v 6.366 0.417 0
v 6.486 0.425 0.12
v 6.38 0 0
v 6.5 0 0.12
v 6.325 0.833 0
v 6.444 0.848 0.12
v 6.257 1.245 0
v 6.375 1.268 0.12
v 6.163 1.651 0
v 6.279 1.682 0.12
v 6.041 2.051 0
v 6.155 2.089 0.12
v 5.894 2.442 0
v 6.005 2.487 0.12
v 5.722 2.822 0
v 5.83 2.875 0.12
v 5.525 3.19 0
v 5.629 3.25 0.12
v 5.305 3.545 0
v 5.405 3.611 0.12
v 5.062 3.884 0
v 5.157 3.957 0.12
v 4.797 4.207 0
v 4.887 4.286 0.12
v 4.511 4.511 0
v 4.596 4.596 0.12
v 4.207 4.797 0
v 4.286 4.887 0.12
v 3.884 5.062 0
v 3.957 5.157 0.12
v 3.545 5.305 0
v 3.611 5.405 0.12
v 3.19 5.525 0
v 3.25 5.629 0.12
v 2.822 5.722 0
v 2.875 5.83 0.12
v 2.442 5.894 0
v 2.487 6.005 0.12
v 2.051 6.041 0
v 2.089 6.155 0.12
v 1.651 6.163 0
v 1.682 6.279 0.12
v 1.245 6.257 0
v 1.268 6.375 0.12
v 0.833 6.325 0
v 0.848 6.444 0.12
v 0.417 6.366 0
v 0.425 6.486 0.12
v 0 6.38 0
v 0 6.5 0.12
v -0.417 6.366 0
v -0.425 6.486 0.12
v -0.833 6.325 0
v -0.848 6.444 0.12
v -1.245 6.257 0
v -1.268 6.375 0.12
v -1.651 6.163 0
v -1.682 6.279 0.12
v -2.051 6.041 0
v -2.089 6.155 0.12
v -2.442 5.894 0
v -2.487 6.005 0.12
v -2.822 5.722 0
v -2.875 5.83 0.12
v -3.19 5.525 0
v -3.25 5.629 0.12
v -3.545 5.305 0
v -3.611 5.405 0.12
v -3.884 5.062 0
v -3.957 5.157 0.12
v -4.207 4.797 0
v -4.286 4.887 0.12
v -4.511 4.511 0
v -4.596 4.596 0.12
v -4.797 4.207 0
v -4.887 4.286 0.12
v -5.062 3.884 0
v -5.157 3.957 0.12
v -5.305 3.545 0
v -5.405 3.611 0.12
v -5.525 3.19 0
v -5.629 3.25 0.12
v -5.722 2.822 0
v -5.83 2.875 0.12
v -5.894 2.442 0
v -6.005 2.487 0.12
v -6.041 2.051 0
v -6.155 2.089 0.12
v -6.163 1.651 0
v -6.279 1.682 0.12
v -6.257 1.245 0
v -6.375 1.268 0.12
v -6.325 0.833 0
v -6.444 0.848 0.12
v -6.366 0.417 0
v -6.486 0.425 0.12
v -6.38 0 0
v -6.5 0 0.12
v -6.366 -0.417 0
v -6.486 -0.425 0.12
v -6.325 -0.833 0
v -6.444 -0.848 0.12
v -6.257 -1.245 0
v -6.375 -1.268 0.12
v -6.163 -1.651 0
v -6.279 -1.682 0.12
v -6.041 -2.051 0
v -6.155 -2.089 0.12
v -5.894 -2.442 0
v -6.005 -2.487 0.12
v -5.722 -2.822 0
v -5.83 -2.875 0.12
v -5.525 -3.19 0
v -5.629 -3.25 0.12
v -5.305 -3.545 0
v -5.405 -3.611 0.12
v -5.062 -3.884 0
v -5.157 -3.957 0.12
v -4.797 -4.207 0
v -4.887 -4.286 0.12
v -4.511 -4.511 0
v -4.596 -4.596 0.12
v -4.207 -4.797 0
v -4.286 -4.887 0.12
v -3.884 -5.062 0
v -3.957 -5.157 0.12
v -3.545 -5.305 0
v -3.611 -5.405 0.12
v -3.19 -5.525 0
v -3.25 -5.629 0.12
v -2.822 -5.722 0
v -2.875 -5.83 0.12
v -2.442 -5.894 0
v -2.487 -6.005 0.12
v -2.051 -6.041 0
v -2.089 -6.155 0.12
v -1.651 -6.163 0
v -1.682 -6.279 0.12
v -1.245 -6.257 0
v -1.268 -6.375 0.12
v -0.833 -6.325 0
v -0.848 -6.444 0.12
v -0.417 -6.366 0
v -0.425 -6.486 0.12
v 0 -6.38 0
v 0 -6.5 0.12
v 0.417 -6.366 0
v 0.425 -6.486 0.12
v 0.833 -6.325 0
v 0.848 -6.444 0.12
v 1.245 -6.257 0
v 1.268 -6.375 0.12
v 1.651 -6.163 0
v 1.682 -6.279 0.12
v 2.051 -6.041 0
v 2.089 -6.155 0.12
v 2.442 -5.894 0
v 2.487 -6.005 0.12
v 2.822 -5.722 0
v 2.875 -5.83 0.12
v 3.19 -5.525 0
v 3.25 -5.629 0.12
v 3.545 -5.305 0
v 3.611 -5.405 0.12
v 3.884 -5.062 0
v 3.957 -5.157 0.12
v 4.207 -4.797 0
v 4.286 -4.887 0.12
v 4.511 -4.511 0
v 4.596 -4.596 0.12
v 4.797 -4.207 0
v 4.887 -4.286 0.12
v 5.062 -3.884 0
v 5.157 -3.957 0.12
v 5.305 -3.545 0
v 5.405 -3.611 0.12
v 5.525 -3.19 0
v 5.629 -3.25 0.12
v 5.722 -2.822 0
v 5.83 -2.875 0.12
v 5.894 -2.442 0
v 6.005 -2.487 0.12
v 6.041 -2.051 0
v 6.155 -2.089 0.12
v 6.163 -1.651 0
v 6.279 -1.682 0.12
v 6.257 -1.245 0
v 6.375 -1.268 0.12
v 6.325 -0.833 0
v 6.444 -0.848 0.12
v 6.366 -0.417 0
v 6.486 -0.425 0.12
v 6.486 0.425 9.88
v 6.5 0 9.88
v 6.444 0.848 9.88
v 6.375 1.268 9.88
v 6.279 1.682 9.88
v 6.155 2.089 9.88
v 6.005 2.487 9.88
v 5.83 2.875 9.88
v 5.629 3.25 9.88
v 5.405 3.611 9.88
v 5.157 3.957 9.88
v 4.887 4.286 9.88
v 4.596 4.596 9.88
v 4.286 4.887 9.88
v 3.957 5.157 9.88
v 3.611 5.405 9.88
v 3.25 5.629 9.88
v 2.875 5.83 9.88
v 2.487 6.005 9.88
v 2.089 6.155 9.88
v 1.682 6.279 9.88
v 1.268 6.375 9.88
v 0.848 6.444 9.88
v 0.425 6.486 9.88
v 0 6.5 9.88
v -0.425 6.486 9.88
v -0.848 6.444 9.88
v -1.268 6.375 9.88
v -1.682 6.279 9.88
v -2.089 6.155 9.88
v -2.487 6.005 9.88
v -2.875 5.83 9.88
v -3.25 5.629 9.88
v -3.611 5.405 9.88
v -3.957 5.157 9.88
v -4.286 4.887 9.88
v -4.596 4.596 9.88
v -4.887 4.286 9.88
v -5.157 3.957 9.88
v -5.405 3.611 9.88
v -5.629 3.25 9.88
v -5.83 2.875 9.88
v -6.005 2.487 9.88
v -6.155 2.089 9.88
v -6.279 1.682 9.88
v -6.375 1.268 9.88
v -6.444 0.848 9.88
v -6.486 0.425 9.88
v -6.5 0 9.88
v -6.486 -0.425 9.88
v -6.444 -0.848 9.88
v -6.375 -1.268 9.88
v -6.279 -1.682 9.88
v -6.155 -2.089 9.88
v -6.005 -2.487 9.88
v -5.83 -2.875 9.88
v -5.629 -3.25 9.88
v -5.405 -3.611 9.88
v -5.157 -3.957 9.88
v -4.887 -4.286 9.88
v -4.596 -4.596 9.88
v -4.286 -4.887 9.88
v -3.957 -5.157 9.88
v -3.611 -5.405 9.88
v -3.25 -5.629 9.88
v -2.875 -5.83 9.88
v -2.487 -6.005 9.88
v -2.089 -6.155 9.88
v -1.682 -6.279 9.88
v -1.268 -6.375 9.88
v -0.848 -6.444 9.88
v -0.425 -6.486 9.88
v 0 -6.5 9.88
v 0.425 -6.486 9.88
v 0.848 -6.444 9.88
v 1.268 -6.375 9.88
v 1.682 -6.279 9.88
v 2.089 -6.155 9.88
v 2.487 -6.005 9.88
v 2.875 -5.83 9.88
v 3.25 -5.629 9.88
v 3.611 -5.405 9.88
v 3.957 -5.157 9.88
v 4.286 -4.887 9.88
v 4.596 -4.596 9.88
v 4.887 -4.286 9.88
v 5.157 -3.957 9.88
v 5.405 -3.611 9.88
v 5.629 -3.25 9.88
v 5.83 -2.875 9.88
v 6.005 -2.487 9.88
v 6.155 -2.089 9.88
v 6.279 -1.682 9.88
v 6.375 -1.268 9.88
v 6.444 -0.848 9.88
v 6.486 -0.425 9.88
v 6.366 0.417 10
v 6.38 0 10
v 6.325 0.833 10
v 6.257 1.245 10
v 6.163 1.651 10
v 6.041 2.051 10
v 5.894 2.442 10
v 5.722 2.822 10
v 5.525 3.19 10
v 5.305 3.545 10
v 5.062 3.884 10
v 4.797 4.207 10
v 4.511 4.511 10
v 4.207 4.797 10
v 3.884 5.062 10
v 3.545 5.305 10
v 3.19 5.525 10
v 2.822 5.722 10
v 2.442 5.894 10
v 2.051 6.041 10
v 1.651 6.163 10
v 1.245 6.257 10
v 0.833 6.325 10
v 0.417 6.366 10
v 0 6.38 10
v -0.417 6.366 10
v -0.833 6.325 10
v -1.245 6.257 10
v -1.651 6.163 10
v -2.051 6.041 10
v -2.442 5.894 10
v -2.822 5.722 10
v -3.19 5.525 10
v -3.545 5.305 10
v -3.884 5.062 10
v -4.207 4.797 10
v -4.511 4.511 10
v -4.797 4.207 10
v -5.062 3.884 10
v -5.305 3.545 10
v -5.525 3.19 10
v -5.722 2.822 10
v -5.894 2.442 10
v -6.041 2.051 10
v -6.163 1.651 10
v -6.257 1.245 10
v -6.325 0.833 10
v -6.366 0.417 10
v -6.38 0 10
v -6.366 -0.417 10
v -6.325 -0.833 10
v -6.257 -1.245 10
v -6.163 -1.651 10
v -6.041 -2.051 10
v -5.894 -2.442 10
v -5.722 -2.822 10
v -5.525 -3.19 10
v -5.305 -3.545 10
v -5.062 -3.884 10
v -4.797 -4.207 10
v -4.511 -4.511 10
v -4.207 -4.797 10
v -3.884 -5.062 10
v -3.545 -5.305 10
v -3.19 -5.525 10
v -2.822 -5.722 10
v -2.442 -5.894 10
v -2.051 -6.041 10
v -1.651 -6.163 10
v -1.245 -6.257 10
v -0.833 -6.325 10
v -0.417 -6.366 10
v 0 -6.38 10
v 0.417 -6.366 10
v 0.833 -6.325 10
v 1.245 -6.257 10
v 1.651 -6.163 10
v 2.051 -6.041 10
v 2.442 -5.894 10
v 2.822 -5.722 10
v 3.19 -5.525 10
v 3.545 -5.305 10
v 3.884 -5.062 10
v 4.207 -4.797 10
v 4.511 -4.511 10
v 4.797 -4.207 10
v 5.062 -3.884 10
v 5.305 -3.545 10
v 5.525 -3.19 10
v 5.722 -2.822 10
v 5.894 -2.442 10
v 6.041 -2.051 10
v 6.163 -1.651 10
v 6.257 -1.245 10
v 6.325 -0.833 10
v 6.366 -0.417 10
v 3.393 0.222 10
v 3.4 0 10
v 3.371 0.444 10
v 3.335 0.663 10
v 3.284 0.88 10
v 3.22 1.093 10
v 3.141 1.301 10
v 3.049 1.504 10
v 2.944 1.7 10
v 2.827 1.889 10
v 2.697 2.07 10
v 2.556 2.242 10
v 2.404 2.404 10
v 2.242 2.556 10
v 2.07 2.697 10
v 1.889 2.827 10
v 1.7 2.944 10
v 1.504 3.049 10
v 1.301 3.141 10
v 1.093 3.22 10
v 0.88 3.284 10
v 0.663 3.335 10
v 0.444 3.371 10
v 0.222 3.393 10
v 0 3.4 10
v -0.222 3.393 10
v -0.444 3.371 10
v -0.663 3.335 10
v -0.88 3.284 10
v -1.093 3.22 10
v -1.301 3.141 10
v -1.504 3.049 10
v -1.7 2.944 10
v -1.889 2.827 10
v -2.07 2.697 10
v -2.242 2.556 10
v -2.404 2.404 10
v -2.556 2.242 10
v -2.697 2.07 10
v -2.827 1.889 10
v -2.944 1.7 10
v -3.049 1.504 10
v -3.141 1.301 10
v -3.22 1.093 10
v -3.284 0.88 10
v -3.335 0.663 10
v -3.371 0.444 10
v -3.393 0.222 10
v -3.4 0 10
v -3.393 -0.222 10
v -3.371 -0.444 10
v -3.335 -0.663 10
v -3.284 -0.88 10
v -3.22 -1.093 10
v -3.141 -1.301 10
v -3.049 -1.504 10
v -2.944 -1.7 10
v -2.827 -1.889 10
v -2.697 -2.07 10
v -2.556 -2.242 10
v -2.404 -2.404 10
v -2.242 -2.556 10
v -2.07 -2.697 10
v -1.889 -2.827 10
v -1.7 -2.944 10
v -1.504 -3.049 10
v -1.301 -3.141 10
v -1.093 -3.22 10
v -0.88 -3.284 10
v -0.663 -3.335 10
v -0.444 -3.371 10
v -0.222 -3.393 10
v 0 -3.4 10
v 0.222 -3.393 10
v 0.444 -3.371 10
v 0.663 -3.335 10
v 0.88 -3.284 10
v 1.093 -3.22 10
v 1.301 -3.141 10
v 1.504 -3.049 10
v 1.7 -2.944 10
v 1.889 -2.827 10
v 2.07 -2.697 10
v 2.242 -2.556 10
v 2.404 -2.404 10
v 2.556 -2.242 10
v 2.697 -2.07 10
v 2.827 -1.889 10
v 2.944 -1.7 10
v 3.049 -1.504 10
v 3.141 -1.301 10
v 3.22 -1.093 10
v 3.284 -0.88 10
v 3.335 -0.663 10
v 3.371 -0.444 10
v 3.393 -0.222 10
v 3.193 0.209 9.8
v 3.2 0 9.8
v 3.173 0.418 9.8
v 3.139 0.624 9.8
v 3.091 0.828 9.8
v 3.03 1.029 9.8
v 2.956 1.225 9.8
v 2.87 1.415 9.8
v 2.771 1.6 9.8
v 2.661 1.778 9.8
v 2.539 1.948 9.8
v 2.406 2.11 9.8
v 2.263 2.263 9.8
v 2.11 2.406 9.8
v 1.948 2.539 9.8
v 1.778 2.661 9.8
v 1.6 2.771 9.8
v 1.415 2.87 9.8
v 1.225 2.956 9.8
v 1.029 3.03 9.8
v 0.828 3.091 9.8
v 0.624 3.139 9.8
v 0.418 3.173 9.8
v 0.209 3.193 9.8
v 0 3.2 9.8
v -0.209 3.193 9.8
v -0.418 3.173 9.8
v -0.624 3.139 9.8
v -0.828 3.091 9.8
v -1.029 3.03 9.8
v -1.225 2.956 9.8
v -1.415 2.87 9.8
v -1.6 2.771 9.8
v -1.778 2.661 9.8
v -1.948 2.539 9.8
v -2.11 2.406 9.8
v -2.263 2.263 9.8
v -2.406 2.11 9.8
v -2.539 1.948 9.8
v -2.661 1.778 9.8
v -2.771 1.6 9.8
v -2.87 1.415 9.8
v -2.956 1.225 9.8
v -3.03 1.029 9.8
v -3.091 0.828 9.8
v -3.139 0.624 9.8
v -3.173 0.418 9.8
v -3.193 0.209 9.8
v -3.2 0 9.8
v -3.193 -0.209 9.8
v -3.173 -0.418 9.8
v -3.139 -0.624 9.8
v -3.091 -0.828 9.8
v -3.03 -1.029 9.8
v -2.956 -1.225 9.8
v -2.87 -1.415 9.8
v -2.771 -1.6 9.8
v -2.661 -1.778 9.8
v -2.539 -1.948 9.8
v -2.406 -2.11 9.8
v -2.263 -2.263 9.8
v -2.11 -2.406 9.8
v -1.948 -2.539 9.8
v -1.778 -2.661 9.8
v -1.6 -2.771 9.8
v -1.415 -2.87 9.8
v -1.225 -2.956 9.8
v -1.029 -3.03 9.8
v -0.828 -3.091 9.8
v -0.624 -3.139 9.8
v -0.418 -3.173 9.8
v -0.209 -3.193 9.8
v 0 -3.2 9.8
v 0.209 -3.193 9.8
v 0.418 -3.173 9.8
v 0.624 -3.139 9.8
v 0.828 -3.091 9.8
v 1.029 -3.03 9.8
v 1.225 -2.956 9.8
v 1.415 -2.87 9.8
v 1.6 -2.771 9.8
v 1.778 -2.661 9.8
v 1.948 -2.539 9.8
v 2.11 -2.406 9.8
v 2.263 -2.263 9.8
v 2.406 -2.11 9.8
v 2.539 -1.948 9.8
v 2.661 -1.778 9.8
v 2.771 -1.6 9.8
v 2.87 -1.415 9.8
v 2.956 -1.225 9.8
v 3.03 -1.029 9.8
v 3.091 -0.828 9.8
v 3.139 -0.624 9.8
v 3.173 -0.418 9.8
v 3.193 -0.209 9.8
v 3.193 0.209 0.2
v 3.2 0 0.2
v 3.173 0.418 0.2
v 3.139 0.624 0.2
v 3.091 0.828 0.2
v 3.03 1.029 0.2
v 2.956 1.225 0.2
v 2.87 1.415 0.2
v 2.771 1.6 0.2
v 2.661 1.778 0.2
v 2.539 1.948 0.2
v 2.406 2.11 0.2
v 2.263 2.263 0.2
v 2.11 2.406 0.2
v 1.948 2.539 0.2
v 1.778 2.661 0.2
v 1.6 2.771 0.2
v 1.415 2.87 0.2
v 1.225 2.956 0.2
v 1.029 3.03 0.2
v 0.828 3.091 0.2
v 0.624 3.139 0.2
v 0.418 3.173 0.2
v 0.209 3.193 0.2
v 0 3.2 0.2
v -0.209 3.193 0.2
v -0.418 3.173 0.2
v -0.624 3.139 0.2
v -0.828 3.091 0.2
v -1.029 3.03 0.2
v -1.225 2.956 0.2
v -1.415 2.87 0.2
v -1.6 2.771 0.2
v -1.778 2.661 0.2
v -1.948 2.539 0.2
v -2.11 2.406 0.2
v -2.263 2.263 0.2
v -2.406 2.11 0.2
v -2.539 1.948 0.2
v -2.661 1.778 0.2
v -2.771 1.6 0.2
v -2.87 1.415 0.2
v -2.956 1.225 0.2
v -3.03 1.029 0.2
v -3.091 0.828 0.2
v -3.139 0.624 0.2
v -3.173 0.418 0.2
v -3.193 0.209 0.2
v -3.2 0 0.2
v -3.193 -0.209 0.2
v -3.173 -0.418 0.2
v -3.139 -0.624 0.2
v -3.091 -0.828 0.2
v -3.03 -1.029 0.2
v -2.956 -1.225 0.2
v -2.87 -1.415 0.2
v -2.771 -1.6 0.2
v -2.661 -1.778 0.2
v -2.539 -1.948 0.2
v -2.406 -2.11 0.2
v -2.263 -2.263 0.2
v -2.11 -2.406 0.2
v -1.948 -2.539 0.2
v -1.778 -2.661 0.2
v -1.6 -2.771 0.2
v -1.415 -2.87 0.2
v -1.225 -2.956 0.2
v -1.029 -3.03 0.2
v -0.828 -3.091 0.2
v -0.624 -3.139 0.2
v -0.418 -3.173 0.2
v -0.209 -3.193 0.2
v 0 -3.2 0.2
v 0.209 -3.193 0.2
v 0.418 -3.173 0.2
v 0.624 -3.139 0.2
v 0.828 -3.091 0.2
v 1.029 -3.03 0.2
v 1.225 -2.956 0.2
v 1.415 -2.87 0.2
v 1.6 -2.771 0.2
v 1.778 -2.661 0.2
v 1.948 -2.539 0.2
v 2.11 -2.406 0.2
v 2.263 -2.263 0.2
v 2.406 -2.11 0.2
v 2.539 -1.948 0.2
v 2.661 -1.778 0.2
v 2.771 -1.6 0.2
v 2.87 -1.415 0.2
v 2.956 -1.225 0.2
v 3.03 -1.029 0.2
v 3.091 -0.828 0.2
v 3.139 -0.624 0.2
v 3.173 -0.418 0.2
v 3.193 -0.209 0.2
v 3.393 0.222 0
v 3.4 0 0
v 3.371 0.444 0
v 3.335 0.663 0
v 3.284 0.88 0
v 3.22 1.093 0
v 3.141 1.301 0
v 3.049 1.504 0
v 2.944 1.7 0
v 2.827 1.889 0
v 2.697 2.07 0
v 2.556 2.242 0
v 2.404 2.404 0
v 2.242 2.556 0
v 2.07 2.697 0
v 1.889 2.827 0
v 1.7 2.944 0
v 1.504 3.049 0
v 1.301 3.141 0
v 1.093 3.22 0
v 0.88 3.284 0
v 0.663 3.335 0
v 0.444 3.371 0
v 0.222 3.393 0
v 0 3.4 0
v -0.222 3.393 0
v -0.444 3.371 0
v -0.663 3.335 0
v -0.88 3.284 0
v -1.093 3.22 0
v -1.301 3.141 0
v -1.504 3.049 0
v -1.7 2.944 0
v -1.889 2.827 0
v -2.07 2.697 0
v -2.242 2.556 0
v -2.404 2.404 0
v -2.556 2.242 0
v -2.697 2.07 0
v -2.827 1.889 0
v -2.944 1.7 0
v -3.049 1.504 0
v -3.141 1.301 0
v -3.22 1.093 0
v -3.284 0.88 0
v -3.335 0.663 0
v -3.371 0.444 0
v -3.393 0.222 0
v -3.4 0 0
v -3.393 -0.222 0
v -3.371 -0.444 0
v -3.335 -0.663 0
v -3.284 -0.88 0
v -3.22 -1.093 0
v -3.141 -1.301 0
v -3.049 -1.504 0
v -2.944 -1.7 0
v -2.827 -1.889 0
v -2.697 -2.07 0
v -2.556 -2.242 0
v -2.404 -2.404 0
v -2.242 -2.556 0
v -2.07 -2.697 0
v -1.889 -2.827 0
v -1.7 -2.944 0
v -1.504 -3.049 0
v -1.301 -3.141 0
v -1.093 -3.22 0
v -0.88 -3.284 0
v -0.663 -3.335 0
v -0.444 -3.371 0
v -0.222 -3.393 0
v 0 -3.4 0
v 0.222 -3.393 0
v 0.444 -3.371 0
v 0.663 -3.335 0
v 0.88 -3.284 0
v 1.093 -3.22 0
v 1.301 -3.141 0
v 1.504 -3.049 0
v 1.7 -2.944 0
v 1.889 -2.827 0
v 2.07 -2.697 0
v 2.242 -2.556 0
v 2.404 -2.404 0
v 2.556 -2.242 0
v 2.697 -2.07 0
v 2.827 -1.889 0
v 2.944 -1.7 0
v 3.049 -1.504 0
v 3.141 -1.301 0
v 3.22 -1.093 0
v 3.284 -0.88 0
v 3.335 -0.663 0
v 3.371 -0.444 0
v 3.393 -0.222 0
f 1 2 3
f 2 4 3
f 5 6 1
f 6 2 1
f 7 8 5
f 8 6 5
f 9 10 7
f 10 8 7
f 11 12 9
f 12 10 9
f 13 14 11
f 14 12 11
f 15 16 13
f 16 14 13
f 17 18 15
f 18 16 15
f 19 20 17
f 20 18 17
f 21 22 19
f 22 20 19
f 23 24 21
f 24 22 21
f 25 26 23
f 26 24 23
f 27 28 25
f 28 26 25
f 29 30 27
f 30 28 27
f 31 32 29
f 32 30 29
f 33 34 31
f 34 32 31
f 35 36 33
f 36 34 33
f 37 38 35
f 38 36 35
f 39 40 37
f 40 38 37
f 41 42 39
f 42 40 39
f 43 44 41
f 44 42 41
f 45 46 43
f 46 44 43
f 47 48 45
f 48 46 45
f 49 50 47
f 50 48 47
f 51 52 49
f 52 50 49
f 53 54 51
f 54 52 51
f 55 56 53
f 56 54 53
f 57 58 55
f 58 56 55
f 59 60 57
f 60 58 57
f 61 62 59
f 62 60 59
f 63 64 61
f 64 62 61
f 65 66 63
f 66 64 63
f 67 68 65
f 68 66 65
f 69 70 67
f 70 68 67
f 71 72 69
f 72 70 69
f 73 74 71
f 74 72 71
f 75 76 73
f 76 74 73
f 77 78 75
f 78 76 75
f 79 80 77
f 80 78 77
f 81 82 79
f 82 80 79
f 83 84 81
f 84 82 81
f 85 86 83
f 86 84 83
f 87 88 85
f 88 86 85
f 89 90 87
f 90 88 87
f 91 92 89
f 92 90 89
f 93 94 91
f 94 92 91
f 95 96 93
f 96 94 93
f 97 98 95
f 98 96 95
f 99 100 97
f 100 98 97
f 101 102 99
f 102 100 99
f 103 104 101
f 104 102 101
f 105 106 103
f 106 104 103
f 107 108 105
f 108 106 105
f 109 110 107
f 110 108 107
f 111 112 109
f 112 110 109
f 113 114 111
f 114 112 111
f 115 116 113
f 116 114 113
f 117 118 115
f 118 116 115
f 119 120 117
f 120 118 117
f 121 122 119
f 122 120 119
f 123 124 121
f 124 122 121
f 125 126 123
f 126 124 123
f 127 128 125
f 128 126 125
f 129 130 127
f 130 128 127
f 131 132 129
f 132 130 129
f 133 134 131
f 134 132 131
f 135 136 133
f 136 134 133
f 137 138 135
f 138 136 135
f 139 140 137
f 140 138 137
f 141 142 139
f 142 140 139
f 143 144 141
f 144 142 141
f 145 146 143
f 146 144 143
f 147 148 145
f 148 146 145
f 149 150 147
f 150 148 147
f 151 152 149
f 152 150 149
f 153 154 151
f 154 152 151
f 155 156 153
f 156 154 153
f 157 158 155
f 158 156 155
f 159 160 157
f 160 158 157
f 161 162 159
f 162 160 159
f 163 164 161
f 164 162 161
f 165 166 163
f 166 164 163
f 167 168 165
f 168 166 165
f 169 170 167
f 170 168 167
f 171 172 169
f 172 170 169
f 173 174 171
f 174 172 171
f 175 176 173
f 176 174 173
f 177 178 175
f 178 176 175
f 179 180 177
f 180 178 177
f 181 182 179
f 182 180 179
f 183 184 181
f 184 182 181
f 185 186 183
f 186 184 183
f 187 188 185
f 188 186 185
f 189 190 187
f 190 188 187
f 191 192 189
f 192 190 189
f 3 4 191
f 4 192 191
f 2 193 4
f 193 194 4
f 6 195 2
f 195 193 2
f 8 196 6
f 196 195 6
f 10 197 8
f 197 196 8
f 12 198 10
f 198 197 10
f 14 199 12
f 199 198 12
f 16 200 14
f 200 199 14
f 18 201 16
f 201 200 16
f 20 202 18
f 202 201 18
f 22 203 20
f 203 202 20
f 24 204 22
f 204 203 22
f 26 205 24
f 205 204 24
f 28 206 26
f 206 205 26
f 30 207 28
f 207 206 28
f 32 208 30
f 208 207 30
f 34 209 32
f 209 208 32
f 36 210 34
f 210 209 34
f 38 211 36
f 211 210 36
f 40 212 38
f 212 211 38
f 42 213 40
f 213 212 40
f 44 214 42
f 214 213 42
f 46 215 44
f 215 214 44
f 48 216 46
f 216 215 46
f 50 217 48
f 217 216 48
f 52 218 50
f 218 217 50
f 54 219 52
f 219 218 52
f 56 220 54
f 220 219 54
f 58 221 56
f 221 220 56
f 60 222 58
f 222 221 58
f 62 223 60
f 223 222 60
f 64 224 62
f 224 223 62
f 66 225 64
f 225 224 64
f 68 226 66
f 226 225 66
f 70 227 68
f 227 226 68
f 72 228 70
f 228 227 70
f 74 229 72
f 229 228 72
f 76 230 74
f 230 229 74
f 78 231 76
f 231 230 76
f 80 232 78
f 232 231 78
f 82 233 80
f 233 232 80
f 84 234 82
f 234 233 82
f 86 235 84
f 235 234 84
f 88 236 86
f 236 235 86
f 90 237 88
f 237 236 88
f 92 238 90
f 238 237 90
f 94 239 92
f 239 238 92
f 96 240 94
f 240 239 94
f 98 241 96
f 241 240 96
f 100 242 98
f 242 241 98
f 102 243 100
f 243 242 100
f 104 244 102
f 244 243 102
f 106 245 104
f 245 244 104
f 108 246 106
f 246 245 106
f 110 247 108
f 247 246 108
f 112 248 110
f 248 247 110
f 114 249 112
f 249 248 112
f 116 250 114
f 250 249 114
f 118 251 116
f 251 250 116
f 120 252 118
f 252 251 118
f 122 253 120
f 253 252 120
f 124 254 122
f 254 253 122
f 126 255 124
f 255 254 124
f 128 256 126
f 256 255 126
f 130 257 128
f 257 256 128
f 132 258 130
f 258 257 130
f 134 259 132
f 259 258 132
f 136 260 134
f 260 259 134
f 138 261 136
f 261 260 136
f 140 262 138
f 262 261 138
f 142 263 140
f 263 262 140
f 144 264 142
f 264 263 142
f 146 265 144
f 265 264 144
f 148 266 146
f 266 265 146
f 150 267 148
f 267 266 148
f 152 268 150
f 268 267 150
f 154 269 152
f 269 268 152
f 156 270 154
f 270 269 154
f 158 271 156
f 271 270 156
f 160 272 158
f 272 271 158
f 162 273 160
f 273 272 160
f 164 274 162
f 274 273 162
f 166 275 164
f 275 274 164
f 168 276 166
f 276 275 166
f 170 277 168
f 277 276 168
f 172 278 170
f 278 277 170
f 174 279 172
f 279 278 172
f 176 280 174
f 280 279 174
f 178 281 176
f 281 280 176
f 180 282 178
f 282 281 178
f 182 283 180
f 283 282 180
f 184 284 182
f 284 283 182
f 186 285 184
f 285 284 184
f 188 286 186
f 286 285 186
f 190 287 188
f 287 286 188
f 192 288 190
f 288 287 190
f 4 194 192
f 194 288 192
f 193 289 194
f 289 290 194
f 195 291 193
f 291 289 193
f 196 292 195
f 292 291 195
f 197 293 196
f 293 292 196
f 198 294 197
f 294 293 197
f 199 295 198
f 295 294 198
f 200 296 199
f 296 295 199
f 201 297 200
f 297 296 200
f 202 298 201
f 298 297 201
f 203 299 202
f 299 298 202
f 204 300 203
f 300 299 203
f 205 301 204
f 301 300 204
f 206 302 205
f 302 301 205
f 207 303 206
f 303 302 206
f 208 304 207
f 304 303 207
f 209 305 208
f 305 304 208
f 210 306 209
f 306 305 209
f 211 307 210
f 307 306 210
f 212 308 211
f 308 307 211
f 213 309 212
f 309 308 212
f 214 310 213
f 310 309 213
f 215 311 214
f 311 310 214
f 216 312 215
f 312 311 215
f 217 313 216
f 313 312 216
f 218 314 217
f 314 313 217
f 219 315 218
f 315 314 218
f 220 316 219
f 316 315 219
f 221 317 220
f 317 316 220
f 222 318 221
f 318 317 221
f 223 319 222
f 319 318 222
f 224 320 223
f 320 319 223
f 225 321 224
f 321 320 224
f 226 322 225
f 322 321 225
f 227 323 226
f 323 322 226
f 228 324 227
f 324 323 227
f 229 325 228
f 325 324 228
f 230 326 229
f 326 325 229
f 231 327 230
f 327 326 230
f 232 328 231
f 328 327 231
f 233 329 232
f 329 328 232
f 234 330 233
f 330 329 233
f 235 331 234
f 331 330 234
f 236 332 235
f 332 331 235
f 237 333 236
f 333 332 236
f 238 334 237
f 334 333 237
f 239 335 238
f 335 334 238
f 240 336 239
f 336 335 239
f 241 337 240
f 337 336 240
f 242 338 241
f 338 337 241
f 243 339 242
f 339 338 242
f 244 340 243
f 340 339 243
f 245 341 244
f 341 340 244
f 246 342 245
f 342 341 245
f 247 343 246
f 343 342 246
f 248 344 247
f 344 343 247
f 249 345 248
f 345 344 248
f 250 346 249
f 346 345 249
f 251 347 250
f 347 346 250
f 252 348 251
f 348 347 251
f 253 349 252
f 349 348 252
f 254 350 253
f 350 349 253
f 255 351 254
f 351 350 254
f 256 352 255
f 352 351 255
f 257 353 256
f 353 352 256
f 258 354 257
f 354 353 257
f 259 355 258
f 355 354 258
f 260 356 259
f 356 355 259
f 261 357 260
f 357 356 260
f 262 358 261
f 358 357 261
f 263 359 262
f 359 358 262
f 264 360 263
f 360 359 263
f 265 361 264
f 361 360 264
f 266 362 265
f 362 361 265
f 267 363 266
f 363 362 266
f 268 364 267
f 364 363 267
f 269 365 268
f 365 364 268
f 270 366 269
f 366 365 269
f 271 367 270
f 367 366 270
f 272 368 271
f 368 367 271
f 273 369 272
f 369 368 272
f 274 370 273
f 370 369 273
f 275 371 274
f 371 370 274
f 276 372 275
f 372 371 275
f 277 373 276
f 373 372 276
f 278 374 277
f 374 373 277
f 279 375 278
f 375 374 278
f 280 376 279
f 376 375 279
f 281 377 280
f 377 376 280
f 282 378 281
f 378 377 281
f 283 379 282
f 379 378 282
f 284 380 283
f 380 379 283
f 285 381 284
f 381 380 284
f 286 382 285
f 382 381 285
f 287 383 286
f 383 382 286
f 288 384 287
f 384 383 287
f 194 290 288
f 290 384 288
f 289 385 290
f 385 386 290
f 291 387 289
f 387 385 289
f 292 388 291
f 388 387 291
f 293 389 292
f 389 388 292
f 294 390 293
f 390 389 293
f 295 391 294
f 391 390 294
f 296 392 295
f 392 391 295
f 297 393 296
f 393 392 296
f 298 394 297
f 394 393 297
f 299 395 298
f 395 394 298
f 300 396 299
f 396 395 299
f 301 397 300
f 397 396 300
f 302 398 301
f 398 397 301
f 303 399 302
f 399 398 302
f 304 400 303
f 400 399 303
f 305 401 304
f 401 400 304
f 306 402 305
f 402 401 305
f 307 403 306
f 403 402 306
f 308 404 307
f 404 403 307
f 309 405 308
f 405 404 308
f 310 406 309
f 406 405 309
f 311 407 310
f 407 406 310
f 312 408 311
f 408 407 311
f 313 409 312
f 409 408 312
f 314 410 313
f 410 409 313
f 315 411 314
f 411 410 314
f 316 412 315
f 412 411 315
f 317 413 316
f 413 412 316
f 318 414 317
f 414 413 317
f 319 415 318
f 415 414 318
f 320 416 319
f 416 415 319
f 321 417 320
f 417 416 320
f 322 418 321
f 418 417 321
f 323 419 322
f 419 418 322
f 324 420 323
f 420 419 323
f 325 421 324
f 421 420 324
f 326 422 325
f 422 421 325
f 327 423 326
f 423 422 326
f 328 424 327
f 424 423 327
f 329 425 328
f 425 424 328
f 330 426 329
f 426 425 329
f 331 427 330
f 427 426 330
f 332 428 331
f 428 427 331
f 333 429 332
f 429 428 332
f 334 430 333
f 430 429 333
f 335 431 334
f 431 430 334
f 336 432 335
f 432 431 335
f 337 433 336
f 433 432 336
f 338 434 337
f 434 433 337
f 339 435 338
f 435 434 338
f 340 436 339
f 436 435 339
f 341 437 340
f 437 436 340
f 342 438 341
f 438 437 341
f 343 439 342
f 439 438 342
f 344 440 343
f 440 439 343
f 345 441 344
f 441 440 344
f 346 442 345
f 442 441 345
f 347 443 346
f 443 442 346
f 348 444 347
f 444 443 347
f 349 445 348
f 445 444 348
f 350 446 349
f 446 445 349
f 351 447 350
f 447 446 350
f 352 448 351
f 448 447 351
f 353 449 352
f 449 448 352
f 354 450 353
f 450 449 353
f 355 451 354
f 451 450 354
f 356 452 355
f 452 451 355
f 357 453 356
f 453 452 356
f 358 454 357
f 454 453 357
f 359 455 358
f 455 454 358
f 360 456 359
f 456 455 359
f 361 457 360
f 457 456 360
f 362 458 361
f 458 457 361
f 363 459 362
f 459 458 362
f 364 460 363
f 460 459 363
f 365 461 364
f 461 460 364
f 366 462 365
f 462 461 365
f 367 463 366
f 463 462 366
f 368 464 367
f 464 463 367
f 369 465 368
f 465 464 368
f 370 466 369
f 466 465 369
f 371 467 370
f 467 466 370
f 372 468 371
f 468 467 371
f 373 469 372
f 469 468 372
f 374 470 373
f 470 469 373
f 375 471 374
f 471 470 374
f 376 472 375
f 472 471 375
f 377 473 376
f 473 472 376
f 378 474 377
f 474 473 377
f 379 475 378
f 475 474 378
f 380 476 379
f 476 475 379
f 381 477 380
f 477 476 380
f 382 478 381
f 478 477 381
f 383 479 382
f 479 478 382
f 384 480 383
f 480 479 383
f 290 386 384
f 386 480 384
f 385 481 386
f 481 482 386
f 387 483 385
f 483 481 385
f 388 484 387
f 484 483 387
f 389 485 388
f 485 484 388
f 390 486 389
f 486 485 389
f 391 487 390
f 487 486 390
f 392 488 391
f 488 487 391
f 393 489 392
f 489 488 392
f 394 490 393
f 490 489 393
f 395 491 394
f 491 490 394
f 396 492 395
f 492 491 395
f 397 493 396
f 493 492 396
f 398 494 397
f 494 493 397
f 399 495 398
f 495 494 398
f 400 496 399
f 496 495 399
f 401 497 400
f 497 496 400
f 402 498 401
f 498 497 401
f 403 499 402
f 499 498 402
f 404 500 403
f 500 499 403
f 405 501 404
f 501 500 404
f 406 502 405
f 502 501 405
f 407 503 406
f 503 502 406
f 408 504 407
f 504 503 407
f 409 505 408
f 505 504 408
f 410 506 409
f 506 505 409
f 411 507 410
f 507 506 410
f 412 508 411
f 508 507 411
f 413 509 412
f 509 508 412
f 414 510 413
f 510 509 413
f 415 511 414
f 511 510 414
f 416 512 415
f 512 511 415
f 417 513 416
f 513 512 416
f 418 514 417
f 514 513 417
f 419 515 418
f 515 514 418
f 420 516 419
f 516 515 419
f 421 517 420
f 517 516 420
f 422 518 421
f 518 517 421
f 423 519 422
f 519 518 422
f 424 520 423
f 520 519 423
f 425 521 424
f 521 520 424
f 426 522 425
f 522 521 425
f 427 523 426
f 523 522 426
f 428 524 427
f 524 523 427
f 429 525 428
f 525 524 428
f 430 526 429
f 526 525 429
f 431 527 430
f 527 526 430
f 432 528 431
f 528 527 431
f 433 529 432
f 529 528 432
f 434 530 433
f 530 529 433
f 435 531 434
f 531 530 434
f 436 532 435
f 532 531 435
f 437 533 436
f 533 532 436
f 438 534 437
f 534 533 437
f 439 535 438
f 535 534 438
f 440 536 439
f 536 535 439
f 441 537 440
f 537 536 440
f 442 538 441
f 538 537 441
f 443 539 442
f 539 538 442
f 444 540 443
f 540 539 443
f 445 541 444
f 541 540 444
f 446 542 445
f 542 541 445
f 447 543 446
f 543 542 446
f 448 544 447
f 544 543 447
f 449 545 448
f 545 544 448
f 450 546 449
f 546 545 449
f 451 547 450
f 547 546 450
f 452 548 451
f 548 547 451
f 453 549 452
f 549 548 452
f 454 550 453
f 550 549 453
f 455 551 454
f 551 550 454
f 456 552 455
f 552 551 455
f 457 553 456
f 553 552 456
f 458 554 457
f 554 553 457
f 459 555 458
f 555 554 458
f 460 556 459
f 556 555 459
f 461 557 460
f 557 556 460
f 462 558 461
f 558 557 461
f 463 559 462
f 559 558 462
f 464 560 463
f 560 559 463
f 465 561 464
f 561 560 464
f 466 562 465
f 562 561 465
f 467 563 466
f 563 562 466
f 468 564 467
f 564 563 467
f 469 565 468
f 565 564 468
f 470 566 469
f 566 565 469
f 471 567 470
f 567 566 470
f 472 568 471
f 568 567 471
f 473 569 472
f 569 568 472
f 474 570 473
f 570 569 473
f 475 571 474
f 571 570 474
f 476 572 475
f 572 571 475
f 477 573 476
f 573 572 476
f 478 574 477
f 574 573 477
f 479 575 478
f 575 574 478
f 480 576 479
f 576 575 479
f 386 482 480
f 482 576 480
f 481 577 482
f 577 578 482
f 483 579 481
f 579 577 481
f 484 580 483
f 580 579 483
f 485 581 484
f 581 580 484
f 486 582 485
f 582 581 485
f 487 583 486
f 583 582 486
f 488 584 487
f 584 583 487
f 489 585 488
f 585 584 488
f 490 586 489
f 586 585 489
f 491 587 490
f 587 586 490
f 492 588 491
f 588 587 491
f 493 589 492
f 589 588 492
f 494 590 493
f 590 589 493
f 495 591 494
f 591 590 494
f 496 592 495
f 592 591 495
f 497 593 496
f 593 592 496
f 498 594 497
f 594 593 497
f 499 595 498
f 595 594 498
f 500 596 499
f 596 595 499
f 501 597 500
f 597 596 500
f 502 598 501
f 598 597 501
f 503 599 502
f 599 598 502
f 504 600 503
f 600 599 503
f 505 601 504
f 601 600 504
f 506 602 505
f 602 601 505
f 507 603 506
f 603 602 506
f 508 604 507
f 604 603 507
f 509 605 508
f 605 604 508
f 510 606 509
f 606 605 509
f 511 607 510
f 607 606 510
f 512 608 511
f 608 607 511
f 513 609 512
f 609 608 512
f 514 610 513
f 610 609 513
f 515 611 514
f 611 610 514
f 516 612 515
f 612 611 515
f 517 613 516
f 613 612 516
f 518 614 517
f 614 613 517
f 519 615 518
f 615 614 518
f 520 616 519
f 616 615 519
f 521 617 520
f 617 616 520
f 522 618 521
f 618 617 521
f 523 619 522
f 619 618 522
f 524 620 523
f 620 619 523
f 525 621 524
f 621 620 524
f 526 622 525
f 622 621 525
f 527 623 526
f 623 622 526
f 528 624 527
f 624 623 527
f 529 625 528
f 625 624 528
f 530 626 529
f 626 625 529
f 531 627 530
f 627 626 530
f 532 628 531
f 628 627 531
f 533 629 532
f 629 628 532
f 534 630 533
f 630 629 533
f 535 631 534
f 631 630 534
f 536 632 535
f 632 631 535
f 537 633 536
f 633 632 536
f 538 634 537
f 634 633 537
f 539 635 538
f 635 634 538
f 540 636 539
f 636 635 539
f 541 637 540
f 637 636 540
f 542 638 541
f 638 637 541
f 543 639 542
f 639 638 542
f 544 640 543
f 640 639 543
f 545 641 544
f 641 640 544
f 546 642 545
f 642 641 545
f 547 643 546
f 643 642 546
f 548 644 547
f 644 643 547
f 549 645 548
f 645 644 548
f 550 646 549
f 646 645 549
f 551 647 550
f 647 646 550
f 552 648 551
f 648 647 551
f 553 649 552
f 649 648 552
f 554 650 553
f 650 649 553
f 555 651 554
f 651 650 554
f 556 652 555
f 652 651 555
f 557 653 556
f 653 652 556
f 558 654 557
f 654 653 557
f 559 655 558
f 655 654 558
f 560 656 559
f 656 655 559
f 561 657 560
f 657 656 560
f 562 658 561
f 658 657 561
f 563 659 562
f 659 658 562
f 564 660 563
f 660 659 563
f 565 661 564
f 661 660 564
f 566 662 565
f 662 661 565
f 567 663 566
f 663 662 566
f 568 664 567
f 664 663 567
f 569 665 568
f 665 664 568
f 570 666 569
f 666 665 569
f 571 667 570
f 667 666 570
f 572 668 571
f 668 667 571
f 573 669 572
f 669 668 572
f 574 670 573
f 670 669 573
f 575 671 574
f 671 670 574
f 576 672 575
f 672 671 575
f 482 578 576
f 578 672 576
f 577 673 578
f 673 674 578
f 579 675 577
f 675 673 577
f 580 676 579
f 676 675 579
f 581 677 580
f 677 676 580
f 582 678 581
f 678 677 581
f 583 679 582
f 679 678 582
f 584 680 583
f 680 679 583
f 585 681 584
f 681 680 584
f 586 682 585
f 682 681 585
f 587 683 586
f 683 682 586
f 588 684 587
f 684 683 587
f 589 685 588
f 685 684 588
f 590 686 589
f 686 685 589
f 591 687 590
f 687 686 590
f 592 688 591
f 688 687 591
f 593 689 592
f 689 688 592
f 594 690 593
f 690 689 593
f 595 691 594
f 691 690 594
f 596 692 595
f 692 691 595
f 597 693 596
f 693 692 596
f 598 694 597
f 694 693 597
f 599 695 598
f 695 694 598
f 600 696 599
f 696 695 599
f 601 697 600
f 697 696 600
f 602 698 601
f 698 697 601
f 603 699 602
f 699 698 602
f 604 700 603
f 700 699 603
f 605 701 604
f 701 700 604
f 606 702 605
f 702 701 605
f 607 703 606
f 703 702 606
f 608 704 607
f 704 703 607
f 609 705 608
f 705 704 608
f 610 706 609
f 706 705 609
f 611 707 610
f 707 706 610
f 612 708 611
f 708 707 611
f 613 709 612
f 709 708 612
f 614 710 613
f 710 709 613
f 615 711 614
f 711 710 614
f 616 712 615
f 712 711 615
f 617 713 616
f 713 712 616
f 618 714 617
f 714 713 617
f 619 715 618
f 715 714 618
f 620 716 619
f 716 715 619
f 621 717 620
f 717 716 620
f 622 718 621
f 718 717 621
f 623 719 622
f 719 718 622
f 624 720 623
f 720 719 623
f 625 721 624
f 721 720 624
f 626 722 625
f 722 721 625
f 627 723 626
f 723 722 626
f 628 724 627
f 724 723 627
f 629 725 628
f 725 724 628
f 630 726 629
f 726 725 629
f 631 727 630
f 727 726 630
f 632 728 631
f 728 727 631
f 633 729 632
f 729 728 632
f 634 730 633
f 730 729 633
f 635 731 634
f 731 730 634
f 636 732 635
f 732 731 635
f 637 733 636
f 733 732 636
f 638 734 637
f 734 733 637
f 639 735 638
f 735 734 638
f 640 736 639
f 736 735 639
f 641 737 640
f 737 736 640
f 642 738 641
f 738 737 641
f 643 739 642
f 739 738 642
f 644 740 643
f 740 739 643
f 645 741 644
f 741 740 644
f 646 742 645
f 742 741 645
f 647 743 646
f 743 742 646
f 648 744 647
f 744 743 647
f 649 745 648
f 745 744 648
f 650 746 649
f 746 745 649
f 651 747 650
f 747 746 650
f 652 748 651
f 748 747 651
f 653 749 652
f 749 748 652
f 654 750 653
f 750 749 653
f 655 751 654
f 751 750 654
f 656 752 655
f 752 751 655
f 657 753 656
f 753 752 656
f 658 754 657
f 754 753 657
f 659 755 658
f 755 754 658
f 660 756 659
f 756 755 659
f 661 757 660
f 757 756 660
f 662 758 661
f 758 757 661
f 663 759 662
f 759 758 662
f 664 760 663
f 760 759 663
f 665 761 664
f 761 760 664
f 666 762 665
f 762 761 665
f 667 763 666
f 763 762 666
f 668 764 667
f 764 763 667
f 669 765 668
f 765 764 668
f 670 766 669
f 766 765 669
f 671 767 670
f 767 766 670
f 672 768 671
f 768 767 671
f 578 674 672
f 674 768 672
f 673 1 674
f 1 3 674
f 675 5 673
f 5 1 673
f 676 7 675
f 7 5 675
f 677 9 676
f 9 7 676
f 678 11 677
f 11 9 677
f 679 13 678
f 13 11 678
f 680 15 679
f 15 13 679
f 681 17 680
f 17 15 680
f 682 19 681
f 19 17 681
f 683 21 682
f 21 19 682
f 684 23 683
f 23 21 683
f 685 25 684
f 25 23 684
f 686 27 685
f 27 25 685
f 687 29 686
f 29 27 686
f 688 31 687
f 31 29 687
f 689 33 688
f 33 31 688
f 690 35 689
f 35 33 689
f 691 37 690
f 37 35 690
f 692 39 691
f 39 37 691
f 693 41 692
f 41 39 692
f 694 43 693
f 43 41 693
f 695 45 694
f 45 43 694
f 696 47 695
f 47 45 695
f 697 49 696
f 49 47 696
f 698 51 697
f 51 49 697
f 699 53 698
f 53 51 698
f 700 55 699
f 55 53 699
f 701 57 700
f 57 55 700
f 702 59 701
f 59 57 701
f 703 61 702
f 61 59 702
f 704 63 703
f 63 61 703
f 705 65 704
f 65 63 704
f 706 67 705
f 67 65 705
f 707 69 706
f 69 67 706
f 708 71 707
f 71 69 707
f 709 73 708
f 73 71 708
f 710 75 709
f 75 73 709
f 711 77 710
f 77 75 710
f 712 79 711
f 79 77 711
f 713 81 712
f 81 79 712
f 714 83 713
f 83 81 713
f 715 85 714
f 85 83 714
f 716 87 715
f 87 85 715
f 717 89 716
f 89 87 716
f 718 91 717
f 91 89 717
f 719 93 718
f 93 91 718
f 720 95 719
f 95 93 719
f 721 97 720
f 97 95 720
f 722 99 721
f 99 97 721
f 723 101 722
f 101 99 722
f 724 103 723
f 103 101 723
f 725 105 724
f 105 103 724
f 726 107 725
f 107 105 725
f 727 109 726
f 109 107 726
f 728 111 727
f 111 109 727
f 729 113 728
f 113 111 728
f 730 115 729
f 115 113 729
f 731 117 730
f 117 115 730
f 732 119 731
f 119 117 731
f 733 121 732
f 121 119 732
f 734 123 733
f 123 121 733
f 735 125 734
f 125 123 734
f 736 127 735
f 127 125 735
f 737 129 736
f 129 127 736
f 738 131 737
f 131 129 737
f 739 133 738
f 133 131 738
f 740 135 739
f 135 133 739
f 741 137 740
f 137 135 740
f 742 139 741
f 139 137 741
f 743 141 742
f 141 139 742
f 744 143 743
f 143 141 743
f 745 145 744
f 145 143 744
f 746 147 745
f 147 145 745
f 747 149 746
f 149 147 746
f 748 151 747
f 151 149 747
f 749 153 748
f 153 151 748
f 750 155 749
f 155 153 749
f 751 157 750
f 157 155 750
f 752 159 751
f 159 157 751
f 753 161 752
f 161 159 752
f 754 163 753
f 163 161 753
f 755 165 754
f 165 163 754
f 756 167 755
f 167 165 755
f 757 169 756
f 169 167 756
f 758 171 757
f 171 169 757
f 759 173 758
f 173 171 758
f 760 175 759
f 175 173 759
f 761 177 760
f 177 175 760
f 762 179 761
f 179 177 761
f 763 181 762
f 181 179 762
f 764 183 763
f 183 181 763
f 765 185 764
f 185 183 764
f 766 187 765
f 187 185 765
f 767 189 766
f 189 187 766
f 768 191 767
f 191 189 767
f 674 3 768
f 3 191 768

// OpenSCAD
// OOMP generic catalogue model; units: mm.
// Stud length is additional to body depth. Tapping depths are model assumptions.
variant = "full"; // [full, display]
family = "spacer";
connection_type = "plain";
depth_mm = 10;
stud_length_mm = 0;
tapped_depth_mm = 0;
bore_mm = 6.4;
outer_diameter_mm = 13;
across_flats_mm = 6;
thread_nominal_diameter_mm = 3;
thread_pitch_mm = 0.5;
edge_chamfer_mm = 0.12;
mouth_chamfer_mm = 0.2;
angular_segments = 96;
samples_per_pitch = 16;

// Boundary travels up the outside, then down any tapped/plain bore.
// Equal-height rings at shoulders form the annular shoulder faces.
n = angular_segments;
threaded = family == "standoff";
has_stud = connection_type == "stud_to_tapped" || connection_type == "stud_to_stud";
two_studs = connection_type == "stud_to_stud";
through = !threaded || connection_type == "tapped_to_tapped";
pitch = thread_pitch_mm;
diameter = threaded ? thread_nominal_diameter_mm : bore_mm;
minor = diameter - 5*sqrt(3)*pitch/8;
transition = mouth_chamfer_mm + (threaded ? 5*sqrt(3)*pitch/16 : 0);
tip_chamfer = mouth_chamfer_mm + 17*sqrt(3)*pitch/48;
function sorted(v) = len(v)<=1 ? v : let(p=v[0])
    concat(sorted([for(x=v) if(x<p-1e-8) x]), [p], sorted([for(x=v) if(x>p+1e-8) x]));
function reverse(v) = [for(i=[len(v)-1:-1:0]) v[i]];
function theta(i) = i*360/n;
function fract(x) = x-floor(x);
function phase_distance(i,z) = abs(fract(z/pitch-theta(i)/360+0.5)-0.5);
function thread_r(i,z) = minor/2 + min(5*sqrt(3)*pitch/16,
    max(0,(phase_distance(i,z)-0.125)*pitch*sqrt(3)));
function stud_r(i,z,tip) = min(diameter/2 - (variant=="full" ?
    min(17*sqrt(3)*pitch/48,max(0,(phase_distance(i,z)-0.0625)*pitch*sqrt(3))) : 0),
    diameter/2-tip_chamfer+abs(z-tip));
function body_r(i,z) = (threaded ? across_flats_mm/2/cos(theta(i)%60-30) : outer_diameter_mm/2)
    - max(0,edge_chamfer_mm-min(z,depth_mm-z));
function bore_r(i,z) = max(threaded ? (variant=="full" ? thread_r(i,z) : minor/2) : diameter/2,
    diameter/2+mouth_chamfer_mm-(through ? min(z,depth_mm-z) : depth_mm-z));
function stud_z(a,b,tip) = let(count=variant=="full" ? ceil(stud_length_mm/pitch*samples_per_pitch) : 1)
    sorted(concat([for(i=[0:count]) a+(b-a)*i/count], [tip==a ? tip+tip_chamfer : tip-tip_chamfer]));
body_z = sorted([0,edge_chamfer_mm,depth_mm-edge_chamfer_mm,depth_mm]);
low = through ? 0 : depth_mm-tapped_depth_mm;
count = threaded && variant=="full" ? ceil((depth_mm-low)/pitch*samples_per_pitch) : 1;
bore_z = two_studs ? [] : reverse(sorted(concat(
    [for(i=[0:count]) low+(depth_mm-low)*i/count],
    [depth_mm-mouth_chamfer_mm,depth_mm-transition],
    through ? [mouth_chamfer_mm,transition] : [])));
// Ring descriptors: [height, kind, tip]. Kind: 0 body, 1 stud, 2 bore.
rings = concat(
    has_stud ? [for(z=stud_z(-stud_length_mm,0,-stud_length_mm)) [z,1,-stud_length_mm]] : [],
    [for(z=body_z) [z,0,0]],
    two_studs ? [for(z=stud_z(depth_mm,depth_mm+stud_length_mm,depth_mm+stud_length_mm)) [z,1,depth_mm+stud_length_mm]] : [],
    [for(z=bore_z) [z,2,0]]);
function radius(i,ring) = ring[1]==0 ? body_r(i,ring[0]) :
    ring[1]==1 ? stud_r(i,ring[0],ring[2]) : bore_r(i,ring[0]);
points = concat([for(ring=rings) for(i=[0:n-1])
    [radius(i,ring)*cos(theta(i)),radius(i,ring)*sin(theta(i)),ring[0]]],
    through ? [] : [[0,0,rings[0][0]],[0,0,rings[len(rings)-1][0]]]);
center = len(rings)*n;
last = (len(rings)-1)*n;
// OpenSCAD winding is opposite to STL winding.
faces = concat(
    [for(j=[0:len(rings)-(through ? 1 : 2)]) for(i=[0:n-1]) each
        let(a=j*n+i,b=j*n+(i+1)%n,c=((j+1)%len(rings))*n+(i+1)%n,d=((j+1)%len(rings))*n+i)
        [[a,c,b],[a,d,c]]],
    through ? [] : [for(i=[0:n-1]) each let(k=(i+1)%n)
        [[center,i,k],[center+1,last+k,last+i]]]);
assert(family=="spacer" || family=="standoff");
assert(!threaded || connection_type=="tapped_to_tapped" || has_stud);
assert(depth_mm>0 && diameter>0 && pitch>0);
assert(variant=="full" || variant=="display");
assert(n>=24 && n%12==0 && samples_per_pitch>=8);
assert(mouth_chamfer_mm>0 && mouth_chamfer_mm<depth_mm/2);
assert(edge_chamfer_mm>=0 && edge_chamfer_mm<depth_mm/2);
assert(diameter+4*max(mouth_chamfer_mm,edge_chamfer_mm) < (threaded ? across_flats_mm : outer_diameter_mm));
assert(!has_stud || stud_length_mm>2*mouth_chamfer_mm);
assert(!through || !threaded || 2*transition<depth_mm);
assert(connection_type!="stud_to_tapped" || (tapped_depth_mm>transition && tapped_depth_mm<depth_mm));
color([0.86,0.85,0.81]) polyhedron(points=points,faces=faces,convexity=20);
